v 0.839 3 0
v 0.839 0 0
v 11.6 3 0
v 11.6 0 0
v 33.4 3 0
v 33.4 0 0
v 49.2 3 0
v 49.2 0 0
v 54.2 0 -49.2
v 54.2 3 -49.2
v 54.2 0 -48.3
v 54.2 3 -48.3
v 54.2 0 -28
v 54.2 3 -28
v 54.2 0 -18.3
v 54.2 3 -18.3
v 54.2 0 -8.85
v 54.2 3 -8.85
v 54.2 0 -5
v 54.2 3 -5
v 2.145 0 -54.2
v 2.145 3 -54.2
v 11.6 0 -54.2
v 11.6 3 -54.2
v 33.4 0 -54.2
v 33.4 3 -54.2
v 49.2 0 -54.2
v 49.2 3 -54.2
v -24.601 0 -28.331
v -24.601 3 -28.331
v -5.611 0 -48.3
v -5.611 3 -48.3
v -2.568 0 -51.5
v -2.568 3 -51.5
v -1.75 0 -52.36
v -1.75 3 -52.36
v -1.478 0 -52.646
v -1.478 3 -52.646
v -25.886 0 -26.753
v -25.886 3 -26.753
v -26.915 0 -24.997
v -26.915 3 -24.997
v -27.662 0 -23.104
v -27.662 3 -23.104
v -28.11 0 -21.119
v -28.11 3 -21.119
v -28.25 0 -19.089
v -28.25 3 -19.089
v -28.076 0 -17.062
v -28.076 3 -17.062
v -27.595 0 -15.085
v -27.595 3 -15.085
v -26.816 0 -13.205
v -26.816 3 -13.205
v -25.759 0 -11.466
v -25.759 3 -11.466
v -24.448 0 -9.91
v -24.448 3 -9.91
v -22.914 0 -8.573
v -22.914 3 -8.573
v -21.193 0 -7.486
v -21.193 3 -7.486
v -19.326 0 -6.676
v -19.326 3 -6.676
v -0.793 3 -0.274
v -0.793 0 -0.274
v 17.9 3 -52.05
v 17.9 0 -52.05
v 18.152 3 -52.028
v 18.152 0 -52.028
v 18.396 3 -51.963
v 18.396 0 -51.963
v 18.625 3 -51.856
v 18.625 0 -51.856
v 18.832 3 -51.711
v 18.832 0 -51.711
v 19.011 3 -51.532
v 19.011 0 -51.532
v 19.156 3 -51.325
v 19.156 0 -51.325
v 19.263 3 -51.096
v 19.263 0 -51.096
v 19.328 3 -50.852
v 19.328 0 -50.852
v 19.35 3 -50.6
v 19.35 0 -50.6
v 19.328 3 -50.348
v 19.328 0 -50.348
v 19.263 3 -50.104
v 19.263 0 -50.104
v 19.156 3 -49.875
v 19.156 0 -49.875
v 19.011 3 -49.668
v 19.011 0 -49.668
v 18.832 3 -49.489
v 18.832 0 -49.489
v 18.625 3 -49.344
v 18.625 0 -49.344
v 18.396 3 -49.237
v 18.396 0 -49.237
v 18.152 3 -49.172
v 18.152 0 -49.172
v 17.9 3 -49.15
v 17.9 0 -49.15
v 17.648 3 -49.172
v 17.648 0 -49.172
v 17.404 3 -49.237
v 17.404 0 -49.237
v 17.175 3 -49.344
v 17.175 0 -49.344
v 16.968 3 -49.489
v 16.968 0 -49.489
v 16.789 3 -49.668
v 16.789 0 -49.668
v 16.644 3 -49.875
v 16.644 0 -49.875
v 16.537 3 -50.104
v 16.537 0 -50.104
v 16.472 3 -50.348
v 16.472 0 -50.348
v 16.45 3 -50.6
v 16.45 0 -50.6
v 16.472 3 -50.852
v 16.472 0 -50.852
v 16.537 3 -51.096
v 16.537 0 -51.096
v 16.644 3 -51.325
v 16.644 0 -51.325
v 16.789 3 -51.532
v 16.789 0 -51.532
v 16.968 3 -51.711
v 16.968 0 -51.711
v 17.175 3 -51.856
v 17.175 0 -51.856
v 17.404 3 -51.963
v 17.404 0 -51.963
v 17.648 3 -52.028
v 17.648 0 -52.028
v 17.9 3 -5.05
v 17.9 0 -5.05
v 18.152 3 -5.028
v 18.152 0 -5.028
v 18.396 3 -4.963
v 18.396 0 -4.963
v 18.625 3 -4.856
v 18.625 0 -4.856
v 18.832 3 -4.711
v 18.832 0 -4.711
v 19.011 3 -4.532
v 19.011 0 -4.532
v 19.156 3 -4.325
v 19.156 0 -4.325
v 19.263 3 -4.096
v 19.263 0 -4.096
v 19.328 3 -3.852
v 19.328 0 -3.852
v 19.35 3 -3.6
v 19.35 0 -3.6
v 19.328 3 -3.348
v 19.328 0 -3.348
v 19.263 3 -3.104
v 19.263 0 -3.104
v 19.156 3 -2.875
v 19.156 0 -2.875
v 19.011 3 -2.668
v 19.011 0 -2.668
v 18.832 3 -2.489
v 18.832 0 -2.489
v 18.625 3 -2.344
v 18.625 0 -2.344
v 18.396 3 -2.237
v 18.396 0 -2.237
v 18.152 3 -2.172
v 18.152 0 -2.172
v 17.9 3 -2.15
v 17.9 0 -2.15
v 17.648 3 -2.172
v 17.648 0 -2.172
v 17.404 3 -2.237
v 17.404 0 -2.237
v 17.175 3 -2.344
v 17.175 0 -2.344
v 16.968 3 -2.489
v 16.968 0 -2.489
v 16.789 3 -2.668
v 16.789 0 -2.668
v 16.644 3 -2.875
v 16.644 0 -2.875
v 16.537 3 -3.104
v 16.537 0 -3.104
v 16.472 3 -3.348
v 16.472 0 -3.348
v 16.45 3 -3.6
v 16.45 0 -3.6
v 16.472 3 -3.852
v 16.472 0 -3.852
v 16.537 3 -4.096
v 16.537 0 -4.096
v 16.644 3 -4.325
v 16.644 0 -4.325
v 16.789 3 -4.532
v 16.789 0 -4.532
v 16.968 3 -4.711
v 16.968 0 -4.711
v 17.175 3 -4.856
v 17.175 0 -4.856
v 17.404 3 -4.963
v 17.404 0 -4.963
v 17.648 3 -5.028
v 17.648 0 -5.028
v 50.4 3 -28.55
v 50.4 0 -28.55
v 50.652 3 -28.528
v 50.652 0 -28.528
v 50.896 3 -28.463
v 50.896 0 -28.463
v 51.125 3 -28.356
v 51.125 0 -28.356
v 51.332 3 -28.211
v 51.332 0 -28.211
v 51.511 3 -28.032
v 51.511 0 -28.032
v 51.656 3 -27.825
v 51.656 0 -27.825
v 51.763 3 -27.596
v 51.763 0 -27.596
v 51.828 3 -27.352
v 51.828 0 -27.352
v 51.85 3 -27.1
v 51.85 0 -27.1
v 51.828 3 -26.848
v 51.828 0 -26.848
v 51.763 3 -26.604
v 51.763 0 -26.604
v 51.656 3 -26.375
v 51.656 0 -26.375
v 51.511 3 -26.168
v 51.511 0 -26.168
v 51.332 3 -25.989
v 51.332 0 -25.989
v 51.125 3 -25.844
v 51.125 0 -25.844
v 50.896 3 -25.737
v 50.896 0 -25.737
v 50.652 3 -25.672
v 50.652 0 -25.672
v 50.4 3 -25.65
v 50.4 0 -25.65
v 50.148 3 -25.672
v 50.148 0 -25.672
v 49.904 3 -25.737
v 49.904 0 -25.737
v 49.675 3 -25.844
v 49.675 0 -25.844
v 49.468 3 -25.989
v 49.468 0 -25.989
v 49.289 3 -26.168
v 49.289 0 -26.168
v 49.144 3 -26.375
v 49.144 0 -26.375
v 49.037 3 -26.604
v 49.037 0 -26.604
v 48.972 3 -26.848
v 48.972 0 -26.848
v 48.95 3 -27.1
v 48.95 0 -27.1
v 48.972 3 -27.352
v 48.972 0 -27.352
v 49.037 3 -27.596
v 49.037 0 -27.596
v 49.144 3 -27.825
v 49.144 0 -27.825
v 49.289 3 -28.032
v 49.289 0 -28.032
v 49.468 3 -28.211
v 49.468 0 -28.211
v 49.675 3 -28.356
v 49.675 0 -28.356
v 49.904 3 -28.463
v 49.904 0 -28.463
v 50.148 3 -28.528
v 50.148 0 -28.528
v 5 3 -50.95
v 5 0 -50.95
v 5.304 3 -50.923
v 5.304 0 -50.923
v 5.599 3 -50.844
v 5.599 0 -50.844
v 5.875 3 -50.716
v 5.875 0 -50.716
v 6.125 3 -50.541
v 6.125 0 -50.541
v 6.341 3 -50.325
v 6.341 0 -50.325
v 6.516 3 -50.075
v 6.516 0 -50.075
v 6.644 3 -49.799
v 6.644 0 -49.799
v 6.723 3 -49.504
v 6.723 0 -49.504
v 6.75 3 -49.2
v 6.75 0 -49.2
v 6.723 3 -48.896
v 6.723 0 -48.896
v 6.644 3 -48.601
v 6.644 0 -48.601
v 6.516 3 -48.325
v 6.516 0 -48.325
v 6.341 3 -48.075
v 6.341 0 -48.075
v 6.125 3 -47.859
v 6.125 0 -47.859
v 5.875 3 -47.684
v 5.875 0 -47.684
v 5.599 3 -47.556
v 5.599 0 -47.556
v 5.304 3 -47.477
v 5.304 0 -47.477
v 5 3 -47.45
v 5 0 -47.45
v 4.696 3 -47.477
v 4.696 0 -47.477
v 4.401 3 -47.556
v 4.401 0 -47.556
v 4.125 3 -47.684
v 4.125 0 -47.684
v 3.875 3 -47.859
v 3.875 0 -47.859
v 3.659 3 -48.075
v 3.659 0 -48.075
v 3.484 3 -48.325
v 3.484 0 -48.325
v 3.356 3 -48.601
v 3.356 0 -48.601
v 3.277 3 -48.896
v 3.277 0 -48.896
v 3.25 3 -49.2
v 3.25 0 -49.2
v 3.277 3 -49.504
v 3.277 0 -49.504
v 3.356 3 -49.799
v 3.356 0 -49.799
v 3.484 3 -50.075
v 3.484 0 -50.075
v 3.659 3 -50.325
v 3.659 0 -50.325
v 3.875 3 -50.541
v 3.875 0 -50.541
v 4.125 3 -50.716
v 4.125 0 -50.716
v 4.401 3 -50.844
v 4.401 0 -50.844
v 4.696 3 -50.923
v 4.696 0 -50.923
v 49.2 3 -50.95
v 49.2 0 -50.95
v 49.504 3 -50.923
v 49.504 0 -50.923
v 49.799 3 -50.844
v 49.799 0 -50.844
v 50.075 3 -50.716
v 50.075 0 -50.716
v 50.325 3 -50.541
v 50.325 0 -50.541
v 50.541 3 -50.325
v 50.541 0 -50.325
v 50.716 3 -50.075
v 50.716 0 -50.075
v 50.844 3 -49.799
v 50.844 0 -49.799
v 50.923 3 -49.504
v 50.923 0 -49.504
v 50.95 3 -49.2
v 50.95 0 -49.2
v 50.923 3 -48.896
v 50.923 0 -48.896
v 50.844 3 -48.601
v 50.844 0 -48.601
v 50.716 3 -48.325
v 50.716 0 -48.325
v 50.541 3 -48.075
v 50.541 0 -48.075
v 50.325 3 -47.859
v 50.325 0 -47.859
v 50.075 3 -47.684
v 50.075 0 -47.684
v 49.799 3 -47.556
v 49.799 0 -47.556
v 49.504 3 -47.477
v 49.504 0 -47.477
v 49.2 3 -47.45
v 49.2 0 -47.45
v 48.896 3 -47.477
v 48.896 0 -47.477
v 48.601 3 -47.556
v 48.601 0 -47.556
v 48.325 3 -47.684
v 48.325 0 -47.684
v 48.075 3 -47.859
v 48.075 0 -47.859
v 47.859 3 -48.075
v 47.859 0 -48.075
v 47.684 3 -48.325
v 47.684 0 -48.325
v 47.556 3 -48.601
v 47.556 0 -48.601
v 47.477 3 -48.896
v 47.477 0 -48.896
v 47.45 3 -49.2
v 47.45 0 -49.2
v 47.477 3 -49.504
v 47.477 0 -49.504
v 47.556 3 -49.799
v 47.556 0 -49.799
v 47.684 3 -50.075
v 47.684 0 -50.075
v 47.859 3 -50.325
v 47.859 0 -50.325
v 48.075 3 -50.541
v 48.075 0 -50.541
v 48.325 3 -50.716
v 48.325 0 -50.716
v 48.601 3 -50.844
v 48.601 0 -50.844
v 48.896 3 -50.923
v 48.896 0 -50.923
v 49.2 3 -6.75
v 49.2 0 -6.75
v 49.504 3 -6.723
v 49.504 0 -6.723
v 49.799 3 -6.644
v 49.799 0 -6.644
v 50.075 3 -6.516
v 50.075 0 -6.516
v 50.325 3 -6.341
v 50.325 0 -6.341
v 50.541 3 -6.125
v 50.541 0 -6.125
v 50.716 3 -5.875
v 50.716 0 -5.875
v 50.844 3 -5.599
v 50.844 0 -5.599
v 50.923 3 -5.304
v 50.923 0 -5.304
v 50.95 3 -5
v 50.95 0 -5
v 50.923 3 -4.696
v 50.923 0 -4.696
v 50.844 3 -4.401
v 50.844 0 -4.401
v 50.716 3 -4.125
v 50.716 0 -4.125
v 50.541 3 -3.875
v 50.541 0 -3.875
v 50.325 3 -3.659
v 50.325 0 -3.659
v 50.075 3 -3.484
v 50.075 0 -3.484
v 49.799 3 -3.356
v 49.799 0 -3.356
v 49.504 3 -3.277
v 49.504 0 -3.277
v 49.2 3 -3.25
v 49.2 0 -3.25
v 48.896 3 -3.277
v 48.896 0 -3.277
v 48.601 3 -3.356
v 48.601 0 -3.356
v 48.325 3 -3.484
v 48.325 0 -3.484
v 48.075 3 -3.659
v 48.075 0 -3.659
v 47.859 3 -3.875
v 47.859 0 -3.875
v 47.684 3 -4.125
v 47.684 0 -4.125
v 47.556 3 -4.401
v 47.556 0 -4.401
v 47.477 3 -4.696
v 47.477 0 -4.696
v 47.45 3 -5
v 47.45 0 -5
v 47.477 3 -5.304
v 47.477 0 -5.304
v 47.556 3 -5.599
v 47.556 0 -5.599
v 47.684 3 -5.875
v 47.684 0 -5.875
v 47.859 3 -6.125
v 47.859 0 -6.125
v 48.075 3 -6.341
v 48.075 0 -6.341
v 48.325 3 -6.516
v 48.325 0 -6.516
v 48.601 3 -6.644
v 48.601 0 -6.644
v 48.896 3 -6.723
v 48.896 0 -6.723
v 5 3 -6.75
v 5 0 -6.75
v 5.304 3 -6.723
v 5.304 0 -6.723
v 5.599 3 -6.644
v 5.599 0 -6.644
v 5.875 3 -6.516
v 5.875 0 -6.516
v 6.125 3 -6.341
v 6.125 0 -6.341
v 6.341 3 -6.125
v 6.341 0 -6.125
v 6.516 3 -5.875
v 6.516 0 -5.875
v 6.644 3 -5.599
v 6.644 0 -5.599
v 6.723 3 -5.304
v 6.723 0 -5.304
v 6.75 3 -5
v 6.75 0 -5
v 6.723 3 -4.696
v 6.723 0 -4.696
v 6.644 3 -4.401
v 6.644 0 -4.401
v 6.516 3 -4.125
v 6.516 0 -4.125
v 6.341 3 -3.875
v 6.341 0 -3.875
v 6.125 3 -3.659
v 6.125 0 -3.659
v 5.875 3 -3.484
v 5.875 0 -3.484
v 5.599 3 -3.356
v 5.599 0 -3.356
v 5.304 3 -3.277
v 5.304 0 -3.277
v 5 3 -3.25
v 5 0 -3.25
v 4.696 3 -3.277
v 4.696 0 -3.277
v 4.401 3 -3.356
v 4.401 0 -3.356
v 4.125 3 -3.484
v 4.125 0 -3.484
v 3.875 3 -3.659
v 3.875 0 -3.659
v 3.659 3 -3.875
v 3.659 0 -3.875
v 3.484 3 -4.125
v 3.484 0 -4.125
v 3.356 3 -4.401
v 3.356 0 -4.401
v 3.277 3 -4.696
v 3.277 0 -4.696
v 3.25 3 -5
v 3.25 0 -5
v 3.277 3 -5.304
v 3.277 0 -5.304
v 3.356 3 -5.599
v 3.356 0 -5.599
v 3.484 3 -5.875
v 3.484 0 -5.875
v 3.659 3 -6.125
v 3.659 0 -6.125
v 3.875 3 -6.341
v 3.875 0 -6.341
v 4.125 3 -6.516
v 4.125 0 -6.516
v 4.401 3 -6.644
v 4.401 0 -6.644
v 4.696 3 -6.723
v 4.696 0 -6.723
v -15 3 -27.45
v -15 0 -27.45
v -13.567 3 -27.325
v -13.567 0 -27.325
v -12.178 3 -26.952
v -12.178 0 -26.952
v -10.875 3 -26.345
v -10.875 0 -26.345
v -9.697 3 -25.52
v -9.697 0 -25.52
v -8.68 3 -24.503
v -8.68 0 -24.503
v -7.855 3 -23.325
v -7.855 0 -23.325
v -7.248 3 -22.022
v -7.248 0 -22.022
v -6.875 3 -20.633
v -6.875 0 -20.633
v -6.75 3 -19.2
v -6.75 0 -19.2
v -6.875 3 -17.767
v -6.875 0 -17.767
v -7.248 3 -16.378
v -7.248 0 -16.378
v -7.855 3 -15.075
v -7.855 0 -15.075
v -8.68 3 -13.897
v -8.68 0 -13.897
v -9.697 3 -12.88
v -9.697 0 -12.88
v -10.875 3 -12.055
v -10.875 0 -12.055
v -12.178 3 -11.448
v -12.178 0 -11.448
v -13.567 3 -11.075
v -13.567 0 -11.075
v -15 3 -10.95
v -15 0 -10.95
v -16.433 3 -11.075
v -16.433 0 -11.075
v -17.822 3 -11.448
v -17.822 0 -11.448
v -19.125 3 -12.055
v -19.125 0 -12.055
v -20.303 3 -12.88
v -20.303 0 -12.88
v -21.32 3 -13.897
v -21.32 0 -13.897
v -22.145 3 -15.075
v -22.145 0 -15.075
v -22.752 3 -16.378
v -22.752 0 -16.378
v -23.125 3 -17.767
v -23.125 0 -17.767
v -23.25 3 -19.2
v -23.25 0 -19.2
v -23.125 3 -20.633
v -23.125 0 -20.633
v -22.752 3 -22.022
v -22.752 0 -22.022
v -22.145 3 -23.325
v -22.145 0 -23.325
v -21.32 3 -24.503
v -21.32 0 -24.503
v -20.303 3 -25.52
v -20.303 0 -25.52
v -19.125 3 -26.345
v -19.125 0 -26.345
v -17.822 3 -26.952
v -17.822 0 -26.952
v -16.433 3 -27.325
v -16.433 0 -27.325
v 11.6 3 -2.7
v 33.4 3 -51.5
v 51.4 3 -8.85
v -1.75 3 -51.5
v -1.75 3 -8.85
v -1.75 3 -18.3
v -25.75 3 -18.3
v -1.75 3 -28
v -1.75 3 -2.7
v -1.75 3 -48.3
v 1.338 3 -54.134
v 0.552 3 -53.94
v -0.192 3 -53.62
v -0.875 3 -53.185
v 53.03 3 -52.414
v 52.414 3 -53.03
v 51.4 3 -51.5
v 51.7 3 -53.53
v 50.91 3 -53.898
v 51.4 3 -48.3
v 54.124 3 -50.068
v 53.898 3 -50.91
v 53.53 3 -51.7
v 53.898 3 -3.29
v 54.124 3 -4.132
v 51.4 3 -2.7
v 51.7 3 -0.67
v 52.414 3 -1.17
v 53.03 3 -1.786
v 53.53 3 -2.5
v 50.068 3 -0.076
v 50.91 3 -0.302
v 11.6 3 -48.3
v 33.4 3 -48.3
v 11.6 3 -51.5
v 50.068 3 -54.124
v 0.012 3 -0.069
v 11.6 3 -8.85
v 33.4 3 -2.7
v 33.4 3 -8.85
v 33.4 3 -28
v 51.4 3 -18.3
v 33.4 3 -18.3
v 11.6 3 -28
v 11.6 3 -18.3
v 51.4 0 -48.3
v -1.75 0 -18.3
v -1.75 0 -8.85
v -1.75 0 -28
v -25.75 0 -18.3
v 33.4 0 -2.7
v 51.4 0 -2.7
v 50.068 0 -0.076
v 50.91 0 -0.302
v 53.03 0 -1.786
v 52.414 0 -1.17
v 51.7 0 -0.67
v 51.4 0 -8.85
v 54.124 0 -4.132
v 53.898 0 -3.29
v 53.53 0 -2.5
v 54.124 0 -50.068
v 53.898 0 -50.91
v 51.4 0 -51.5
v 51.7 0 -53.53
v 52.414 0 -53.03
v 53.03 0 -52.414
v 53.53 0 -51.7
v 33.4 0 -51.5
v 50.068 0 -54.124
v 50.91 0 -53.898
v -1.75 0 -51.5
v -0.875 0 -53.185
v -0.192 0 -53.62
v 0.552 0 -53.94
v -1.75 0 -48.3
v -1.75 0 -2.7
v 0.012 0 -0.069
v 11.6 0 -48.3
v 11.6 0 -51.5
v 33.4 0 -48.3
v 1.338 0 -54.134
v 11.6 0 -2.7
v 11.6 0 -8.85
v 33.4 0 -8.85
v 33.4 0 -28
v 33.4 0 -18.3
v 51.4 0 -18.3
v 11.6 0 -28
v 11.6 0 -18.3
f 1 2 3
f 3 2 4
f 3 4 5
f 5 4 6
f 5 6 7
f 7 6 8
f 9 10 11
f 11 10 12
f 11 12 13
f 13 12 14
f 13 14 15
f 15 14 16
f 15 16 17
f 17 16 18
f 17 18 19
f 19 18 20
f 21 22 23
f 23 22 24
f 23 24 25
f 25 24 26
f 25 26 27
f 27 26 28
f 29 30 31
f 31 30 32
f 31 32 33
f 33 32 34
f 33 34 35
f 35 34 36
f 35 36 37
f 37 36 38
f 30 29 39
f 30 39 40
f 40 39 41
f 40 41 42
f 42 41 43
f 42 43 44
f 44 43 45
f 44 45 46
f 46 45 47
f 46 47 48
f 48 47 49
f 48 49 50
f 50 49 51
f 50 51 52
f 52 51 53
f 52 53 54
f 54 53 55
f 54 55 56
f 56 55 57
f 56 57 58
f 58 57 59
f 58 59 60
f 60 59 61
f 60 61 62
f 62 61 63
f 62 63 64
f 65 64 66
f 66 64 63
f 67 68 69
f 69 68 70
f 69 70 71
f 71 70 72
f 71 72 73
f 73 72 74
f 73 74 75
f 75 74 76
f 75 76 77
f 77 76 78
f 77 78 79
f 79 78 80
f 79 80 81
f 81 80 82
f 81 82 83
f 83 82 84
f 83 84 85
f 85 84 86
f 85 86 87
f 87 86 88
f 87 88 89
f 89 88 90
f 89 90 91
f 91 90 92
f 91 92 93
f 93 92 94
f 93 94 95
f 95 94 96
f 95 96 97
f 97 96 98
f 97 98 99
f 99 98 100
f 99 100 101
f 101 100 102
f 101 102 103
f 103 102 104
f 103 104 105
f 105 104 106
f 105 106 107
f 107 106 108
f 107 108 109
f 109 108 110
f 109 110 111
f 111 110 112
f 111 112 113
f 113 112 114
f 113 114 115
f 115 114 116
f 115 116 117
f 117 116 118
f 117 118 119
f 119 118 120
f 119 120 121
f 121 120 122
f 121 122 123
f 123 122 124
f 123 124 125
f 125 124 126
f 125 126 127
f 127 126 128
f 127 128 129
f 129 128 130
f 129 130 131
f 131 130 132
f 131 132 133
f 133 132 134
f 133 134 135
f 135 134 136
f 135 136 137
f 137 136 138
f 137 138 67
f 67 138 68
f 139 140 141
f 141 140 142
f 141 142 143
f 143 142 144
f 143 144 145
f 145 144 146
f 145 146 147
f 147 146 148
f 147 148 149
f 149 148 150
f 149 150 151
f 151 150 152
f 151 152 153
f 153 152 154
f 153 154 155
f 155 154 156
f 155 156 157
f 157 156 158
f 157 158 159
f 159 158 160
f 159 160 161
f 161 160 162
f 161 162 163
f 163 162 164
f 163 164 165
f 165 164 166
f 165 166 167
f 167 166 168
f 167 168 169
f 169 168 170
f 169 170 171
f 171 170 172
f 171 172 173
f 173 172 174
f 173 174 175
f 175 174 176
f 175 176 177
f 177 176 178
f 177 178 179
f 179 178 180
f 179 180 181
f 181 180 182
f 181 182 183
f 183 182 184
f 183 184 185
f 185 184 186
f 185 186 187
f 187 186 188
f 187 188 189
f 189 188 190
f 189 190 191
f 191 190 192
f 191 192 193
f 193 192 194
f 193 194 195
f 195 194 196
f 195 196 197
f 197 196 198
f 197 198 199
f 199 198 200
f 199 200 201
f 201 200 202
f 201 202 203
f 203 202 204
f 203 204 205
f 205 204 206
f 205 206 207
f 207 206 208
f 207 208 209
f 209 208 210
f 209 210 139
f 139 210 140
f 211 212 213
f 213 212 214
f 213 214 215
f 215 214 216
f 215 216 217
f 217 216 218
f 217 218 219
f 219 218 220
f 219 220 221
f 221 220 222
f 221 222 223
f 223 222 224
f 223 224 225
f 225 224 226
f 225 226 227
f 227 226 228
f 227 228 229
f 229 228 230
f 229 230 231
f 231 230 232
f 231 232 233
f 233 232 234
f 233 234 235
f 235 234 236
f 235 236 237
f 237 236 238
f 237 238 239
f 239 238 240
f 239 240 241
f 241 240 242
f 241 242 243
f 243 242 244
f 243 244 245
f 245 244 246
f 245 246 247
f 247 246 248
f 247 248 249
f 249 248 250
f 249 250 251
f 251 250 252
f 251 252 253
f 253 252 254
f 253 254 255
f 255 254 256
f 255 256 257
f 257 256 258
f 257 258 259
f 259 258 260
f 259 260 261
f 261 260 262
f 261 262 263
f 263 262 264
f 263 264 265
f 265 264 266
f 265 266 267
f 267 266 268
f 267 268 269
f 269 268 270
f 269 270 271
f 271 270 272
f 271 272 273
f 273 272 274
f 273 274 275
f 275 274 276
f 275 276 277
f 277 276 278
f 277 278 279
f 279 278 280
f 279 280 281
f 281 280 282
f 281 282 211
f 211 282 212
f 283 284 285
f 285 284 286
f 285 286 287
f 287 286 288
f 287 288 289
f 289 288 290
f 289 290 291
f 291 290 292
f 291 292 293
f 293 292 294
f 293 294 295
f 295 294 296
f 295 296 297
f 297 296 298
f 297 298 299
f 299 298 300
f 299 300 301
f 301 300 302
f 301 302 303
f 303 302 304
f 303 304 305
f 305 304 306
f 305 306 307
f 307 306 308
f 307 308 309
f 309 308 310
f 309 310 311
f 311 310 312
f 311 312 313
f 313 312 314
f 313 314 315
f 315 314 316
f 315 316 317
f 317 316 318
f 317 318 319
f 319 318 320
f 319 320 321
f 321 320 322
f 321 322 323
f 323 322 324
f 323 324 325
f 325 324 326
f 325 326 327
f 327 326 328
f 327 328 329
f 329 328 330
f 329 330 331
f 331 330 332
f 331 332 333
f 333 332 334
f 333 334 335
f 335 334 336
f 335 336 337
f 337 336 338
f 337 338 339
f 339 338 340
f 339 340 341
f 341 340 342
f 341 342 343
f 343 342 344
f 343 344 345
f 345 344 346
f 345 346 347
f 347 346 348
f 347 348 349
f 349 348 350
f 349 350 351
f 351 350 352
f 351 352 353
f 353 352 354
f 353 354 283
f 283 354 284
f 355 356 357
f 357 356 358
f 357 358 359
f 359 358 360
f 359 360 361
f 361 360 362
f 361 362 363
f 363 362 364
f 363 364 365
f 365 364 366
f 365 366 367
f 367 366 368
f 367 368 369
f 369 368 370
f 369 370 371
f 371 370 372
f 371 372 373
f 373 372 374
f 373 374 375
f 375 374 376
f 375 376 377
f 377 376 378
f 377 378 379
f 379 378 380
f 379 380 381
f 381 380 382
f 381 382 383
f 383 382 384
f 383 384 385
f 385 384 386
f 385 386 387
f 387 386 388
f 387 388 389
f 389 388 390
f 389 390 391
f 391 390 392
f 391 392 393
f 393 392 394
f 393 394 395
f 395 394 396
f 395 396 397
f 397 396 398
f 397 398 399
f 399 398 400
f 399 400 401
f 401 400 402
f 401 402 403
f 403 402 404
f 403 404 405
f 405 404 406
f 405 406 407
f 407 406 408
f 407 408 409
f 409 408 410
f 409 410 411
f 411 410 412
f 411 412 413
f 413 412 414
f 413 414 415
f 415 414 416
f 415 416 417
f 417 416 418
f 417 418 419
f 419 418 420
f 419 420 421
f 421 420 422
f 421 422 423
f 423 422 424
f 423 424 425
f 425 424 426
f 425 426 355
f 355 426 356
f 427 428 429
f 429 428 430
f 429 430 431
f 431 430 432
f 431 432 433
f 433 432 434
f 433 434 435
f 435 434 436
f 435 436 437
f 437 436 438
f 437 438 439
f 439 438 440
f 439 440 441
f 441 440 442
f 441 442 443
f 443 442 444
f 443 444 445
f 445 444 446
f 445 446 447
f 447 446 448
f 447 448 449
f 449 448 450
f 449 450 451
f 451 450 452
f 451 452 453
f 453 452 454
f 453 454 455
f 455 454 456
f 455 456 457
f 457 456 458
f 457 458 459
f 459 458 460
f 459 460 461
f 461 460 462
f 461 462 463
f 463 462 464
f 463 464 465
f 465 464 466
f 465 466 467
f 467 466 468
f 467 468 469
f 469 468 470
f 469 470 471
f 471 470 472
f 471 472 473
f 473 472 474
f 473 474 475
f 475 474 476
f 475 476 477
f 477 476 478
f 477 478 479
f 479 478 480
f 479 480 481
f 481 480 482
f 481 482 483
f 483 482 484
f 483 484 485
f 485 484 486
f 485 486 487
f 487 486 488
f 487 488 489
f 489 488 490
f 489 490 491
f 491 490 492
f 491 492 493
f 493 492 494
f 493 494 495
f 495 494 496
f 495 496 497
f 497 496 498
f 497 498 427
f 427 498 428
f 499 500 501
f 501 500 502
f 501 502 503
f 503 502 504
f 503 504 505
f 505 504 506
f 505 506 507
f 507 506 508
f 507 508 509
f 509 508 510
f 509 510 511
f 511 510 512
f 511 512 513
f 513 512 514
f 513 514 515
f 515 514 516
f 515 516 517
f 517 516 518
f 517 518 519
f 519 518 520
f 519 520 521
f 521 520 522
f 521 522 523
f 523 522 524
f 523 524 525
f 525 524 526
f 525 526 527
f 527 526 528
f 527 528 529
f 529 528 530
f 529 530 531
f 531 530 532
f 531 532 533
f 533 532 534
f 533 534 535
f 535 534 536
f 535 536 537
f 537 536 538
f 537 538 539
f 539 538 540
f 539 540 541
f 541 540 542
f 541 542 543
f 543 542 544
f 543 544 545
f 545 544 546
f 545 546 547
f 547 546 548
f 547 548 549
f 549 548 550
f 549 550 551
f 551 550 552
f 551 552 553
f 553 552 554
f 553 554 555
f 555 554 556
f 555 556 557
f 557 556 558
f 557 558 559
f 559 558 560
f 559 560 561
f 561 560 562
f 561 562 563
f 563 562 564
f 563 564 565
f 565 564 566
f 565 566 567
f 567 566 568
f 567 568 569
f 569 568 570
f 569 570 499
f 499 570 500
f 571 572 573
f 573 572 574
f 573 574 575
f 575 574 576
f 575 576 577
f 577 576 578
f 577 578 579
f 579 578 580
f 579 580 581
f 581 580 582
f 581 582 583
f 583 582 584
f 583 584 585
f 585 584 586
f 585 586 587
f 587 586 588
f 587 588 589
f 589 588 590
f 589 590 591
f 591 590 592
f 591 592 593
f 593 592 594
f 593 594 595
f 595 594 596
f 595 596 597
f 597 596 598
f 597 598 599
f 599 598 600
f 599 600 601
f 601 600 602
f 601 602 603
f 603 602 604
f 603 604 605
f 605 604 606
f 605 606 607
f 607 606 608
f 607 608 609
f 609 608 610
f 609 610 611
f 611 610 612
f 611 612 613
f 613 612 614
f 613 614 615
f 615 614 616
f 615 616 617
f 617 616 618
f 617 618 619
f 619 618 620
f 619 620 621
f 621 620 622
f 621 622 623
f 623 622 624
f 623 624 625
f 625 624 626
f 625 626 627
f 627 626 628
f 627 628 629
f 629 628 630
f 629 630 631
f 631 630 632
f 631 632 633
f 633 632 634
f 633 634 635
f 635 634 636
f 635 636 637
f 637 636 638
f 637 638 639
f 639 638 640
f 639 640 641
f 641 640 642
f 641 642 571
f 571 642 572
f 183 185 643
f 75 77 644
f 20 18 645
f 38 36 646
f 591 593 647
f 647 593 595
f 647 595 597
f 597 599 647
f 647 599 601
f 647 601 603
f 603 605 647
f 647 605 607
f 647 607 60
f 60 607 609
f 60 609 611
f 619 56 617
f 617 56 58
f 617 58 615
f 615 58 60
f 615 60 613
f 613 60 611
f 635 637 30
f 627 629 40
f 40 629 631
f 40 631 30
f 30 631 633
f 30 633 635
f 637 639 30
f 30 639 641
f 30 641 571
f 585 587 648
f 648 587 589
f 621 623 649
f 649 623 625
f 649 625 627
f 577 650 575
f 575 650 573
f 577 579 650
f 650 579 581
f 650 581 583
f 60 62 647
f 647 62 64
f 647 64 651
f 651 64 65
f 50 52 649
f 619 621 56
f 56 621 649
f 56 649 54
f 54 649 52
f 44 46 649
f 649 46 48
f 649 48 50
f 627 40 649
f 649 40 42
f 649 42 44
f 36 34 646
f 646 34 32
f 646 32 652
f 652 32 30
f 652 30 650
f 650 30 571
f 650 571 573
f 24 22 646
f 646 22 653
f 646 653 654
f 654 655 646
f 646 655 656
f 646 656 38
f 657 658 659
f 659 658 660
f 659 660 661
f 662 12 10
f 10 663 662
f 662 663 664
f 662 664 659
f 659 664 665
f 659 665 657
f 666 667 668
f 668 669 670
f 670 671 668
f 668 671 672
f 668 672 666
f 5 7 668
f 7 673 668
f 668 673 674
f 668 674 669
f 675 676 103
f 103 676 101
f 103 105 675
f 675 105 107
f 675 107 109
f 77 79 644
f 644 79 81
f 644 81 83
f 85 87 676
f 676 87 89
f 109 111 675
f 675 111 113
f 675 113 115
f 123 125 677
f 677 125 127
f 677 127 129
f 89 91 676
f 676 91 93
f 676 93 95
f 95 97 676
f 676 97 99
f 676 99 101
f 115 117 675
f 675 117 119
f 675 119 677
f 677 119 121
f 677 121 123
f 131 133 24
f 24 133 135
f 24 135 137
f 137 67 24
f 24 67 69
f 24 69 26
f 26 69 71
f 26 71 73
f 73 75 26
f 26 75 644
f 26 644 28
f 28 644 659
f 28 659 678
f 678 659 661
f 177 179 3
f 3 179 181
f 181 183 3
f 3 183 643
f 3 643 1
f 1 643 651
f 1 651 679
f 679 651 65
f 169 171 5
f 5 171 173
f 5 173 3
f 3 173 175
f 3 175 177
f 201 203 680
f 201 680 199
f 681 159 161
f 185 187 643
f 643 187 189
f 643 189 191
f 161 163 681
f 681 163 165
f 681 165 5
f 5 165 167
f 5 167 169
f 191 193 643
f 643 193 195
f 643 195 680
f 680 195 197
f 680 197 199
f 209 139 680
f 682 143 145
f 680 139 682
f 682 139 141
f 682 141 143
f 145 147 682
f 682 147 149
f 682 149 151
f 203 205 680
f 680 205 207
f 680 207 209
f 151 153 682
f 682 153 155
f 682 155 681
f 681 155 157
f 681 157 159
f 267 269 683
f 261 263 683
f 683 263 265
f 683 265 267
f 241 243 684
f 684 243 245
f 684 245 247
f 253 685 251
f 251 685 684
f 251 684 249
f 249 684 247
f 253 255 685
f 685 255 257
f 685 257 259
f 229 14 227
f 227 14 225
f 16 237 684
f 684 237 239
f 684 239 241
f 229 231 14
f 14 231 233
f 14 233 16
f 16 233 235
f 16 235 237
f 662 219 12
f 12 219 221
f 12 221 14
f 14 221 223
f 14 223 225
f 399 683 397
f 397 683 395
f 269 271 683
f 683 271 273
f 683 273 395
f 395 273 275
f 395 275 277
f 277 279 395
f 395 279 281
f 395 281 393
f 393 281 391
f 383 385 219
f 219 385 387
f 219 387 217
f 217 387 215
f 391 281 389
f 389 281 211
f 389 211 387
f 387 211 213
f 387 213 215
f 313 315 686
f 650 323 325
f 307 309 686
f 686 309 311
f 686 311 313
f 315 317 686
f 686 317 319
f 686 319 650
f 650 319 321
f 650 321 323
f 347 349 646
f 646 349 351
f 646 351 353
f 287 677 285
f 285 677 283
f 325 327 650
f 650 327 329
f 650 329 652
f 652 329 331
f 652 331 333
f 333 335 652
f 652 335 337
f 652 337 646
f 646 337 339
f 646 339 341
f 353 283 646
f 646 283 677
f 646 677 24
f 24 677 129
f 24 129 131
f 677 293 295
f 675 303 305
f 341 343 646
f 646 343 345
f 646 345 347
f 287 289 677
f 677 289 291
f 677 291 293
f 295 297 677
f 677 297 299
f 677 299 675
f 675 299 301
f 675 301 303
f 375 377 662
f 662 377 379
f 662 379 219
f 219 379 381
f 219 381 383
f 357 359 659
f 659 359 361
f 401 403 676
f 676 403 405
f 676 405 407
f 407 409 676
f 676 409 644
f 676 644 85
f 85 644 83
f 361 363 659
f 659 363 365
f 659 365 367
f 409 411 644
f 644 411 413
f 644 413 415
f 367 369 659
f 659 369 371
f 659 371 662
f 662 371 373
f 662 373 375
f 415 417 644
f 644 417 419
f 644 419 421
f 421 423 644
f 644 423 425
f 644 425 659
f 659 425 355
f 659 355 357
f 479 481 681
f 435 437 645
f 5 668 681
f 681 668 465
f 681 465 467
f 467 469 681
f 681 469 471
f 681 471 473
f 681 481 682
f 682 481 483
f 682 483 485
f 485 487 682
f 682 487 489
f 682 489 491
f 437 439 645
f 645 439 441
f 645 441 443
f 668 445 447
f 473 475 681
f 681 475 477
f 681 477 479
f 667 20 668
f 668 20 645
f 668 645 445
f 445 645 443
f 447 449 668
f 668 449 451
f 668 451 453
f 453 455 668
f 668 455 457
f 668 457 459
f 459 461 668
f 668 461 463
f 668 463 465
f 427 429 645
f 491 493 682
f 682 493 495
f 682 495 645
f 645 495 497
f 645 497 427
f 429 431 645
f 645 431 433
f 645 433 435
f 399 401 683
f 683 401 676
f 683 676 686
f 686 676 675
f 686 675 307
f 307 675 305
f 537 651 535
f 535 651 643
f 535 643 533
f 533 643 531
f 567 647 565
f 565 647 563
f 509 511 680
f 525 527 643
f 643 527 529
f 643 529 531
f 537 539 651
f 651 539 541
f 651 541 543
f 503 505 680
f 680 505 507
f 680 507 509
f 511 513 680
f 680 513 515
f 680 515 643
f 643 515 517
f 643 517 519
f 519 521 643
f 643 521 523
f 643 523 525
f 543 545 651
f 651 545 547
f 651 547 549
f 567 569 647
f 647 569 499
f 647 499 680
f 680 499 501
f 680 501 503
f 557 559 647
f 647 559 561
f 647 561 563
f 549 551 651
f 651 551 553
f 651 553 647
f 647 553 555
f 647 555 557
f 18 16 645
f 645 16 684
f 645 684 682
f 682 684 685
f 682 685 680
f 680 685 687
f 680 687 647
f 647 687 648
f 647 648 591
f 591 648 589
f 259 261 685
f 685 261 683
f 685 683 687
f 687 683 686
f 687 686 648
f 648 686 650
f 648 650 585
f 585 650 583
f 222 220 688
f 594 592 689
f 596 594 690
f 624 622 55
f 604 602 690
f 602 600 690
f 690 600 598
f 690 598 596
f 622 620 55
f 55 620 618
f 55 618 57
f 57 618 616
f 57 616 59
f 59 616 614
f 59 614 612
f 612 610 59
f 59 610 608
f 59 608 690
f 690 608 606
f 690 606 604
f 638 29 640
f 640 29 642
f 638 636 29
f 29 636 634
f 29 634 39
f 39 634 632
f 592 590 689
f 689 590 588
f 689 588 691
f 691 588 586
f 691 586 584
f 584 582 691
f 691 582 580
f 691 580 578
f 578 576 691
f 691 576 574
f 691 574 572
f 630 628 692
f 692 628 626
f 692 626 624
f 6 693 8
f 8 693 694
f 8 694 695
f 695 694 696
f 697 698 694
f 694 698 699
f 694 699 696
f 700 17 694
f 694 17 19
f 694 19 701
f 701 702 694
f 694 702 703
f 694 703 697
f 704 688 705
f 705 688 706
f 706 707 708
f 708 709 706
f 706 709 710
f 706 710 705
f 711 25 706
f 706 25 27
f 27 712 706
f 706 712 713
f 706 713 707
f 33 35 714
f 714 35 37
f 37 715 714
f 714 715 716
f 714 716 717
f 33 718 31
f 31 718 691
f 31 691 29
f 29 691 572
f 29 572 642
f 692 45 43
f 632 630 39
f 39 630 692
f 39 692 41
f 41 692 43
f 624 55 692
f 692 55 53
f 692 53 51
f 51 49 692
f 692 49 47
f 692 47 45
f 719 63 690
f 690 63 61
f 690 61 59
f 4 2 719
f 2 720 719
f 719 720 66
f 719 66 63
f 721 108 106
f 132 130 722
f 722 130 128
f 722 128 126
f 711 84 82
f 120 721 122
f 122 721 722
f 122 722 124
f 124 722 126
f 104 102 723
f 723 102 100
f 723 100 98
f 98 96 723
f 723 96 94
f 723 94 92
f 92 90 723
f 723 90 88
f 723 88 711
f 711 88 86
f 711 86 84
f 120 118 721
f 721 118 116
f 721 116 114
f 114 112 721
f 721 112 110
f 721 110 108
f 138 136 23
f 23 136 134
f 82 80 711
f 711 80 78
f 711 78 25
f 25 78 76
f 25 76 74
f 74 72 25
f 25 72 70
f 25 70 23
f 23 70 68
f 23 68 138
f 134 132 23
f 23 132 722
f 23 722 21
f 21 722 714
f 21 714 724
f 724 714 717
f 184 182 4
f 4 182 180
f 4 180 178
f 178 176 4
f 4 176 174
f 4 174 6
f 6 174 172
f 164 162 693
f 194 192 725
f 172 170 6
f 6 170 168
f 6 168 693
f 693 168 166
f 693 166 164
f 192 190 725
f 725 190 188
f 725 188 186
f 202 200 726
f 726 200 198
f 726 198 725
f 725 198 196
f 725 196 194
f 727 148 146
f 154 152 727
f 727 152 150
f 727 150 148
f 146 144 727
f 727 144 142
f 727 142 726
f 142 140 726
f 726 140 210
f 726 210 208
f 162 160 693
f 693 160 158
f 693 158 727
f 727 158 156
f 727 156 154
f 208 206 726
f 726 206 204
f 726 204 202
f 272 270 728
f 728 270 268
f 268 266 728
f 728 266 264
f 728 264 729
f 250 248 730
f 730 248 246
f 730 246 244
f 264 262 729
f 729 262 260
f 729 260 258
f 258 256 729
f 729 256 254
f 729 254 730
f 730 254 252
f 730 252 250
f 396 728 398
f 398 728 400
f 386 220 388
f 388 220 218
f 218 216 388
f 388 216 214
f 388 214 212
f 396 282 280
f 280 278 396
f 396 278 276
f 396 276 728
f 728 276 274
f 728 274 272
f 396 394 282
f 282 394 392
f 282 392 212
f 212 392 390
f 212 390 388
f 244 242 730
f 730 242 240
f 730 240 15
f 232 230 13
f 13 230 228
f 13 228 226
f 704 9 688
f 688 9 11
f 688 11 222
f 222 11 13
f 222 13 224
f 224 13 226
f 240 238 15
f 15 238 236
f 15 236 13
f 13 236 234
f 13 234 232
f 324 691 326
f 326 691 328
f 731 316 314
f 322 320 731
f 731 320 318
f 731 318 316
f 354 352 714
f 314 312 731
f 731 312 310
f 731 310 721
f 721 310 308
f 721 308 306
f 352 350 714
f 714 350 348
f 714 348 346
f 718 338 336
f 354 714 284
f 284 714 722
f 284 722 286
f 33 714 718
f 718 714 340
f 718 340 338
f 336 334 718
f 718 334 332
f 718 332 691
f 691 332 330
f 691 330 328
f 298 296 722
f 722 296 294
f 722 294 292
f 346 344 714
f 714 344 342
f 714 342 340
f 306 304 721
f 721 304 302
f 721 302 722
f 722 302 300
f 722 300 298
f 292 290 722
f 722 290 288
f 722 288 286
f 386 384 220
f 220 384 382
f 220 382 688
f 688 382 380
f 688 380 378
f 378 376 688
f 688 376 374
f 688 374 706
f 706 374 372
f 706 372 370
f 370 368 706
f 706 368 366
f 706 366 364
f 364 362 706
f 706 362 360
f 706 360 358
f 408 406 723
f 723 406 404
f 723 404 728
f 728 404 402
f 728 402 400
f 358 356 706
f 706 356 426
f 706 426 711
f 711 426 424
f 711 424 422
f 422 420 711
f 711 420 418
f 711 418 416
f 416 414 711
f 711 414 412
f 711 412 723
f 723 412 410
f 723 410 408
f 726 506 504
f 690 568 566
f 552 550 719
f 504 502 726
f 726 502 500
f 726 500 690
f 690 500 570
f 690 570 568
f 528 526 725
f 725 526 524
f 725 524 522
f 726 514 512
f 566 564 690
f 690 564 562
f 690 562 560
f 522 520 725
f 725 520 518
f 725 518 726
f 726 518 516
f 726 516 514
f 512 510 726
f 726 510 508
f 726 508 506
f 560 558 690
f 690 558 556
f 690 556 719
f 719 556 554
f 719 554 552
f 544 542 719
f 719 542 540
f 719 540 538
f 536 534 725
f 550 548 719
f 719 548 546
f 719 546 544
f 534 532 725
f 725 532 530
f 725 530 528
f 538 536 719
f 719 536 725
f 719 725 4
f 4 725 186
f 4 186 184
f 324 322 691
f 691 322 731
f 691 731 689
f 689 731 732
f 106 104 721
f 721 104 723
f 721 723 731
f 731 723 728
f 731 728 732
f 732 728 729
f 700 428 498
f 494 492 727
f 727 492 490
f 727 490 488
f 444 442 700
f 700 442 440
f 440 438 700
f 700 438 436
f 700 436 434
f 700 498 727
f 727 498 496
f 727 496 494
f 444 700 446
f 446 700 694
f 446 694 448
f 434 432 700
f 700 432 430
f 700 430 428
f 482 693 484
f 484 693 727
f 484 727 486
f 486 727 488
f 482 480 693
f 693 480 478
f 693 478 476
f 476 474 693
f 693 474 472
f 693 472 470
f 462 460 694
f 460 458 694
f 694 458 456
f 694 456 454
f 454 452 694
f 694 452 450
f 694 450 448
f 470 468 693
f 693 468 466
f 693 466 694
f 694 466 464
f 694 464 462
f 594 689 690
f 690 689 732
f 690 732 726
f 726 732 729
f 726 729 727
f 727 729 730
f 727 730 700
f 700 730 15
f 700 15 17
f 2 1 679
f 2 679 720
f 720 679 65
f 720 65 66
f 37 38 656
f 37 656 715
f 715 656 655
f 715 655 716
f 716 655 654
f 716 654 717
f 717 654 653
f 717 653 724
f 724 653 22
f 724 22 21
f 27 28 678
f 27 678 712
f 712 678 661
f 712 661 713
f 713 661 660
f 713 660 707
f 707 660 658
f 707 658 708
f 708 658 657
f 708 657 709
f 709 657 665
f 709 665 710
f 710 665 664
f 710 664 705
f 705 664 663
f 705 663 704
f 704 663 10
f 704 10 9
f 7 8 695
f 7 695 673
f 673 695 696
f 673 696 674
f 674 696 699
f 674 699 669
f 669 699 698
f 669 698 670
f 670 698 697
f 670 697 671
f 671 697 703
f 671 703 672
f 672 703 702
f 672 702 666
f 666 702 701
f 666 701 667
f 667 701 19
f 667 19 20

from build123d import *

# Parameters (mm, degrees)
SKETCH1_R           = 1.75
SKETCH1_R_2         = 1.45
SKETCH1_R_3         = 8.25
BOSS_EXTRUDE1_DEPTH = 3
FILLET1_R           = 5


with BuildPart() as part:
    # Sketch1 → Boss-Extrude1 (new body)
    with BuildSketch(Plane(origin=(0, 0, 0), x_dir=(1, 0, 0), z_dir=(0, 1, 0))):
        with BuildLine():
            Line((54.2, 54.2), (0, 54.2))
            Line((0, 54.2), (-24.601445865, 28.330976799))
            ThreePointArc((-24.601445865, 28.330976799), (-27.87353462, 16.063982402), (-19.326300343, 6.676197648))
            Line((-19.326300343, 6.676197648), (0, 0))
            Line((0, 0), (54.2, 0))
            Line((54.2, 0), (54.2, 54.2))
        make_face()
        with Locations((5, 5)):
            Circle(SKETCH1_R, mode=Mode.SUBTRACT)
        with Locations((17.9, 3.6)):
            Circle(SKETCH1_R_2, mode=Mode.SUBTRACT)
        with Locations((49.2, 5)):
            Circle(SKETCH1_R, mode=Mode.SUBTRACT)
        with Locations((5, 49.2)):
            Circle(SKETCH1_R, mode=Mode.SUBTRACT)
        with Locations((50.4, 27.1)):
            Circle(SKETCH1_R_2, mode=Mode.SUBTRACT)
        with Locations((17.9, 50.6)):
            Circle(SKETCH1_R_2, mode=Mode.SUBTRACT)
        with Locations((49.2, 49.2)):
            Circle(SKETCH1_R, mode=Mode.SUBTRACT)
        with Locations((-15, 19.2)):
            Circle(SKETCH1_R_3, mode=Mode.SUBTRACT)
    extrude(amount=BOSS_EXTRUDE1_DEPTH)

    # Fillet1
    fillet1_edges = [part.edges().sort_by_distance(p)[0] for p in [
        (0, 1.5, 0),
        (0, 1.5, -54.2),
        (54.2, 1.5, -54.2),
        (54.2, 1.5, 0),
    ]]
    fillet(fillet1_edges, radius=FILLET1_R)


solid = part.part
